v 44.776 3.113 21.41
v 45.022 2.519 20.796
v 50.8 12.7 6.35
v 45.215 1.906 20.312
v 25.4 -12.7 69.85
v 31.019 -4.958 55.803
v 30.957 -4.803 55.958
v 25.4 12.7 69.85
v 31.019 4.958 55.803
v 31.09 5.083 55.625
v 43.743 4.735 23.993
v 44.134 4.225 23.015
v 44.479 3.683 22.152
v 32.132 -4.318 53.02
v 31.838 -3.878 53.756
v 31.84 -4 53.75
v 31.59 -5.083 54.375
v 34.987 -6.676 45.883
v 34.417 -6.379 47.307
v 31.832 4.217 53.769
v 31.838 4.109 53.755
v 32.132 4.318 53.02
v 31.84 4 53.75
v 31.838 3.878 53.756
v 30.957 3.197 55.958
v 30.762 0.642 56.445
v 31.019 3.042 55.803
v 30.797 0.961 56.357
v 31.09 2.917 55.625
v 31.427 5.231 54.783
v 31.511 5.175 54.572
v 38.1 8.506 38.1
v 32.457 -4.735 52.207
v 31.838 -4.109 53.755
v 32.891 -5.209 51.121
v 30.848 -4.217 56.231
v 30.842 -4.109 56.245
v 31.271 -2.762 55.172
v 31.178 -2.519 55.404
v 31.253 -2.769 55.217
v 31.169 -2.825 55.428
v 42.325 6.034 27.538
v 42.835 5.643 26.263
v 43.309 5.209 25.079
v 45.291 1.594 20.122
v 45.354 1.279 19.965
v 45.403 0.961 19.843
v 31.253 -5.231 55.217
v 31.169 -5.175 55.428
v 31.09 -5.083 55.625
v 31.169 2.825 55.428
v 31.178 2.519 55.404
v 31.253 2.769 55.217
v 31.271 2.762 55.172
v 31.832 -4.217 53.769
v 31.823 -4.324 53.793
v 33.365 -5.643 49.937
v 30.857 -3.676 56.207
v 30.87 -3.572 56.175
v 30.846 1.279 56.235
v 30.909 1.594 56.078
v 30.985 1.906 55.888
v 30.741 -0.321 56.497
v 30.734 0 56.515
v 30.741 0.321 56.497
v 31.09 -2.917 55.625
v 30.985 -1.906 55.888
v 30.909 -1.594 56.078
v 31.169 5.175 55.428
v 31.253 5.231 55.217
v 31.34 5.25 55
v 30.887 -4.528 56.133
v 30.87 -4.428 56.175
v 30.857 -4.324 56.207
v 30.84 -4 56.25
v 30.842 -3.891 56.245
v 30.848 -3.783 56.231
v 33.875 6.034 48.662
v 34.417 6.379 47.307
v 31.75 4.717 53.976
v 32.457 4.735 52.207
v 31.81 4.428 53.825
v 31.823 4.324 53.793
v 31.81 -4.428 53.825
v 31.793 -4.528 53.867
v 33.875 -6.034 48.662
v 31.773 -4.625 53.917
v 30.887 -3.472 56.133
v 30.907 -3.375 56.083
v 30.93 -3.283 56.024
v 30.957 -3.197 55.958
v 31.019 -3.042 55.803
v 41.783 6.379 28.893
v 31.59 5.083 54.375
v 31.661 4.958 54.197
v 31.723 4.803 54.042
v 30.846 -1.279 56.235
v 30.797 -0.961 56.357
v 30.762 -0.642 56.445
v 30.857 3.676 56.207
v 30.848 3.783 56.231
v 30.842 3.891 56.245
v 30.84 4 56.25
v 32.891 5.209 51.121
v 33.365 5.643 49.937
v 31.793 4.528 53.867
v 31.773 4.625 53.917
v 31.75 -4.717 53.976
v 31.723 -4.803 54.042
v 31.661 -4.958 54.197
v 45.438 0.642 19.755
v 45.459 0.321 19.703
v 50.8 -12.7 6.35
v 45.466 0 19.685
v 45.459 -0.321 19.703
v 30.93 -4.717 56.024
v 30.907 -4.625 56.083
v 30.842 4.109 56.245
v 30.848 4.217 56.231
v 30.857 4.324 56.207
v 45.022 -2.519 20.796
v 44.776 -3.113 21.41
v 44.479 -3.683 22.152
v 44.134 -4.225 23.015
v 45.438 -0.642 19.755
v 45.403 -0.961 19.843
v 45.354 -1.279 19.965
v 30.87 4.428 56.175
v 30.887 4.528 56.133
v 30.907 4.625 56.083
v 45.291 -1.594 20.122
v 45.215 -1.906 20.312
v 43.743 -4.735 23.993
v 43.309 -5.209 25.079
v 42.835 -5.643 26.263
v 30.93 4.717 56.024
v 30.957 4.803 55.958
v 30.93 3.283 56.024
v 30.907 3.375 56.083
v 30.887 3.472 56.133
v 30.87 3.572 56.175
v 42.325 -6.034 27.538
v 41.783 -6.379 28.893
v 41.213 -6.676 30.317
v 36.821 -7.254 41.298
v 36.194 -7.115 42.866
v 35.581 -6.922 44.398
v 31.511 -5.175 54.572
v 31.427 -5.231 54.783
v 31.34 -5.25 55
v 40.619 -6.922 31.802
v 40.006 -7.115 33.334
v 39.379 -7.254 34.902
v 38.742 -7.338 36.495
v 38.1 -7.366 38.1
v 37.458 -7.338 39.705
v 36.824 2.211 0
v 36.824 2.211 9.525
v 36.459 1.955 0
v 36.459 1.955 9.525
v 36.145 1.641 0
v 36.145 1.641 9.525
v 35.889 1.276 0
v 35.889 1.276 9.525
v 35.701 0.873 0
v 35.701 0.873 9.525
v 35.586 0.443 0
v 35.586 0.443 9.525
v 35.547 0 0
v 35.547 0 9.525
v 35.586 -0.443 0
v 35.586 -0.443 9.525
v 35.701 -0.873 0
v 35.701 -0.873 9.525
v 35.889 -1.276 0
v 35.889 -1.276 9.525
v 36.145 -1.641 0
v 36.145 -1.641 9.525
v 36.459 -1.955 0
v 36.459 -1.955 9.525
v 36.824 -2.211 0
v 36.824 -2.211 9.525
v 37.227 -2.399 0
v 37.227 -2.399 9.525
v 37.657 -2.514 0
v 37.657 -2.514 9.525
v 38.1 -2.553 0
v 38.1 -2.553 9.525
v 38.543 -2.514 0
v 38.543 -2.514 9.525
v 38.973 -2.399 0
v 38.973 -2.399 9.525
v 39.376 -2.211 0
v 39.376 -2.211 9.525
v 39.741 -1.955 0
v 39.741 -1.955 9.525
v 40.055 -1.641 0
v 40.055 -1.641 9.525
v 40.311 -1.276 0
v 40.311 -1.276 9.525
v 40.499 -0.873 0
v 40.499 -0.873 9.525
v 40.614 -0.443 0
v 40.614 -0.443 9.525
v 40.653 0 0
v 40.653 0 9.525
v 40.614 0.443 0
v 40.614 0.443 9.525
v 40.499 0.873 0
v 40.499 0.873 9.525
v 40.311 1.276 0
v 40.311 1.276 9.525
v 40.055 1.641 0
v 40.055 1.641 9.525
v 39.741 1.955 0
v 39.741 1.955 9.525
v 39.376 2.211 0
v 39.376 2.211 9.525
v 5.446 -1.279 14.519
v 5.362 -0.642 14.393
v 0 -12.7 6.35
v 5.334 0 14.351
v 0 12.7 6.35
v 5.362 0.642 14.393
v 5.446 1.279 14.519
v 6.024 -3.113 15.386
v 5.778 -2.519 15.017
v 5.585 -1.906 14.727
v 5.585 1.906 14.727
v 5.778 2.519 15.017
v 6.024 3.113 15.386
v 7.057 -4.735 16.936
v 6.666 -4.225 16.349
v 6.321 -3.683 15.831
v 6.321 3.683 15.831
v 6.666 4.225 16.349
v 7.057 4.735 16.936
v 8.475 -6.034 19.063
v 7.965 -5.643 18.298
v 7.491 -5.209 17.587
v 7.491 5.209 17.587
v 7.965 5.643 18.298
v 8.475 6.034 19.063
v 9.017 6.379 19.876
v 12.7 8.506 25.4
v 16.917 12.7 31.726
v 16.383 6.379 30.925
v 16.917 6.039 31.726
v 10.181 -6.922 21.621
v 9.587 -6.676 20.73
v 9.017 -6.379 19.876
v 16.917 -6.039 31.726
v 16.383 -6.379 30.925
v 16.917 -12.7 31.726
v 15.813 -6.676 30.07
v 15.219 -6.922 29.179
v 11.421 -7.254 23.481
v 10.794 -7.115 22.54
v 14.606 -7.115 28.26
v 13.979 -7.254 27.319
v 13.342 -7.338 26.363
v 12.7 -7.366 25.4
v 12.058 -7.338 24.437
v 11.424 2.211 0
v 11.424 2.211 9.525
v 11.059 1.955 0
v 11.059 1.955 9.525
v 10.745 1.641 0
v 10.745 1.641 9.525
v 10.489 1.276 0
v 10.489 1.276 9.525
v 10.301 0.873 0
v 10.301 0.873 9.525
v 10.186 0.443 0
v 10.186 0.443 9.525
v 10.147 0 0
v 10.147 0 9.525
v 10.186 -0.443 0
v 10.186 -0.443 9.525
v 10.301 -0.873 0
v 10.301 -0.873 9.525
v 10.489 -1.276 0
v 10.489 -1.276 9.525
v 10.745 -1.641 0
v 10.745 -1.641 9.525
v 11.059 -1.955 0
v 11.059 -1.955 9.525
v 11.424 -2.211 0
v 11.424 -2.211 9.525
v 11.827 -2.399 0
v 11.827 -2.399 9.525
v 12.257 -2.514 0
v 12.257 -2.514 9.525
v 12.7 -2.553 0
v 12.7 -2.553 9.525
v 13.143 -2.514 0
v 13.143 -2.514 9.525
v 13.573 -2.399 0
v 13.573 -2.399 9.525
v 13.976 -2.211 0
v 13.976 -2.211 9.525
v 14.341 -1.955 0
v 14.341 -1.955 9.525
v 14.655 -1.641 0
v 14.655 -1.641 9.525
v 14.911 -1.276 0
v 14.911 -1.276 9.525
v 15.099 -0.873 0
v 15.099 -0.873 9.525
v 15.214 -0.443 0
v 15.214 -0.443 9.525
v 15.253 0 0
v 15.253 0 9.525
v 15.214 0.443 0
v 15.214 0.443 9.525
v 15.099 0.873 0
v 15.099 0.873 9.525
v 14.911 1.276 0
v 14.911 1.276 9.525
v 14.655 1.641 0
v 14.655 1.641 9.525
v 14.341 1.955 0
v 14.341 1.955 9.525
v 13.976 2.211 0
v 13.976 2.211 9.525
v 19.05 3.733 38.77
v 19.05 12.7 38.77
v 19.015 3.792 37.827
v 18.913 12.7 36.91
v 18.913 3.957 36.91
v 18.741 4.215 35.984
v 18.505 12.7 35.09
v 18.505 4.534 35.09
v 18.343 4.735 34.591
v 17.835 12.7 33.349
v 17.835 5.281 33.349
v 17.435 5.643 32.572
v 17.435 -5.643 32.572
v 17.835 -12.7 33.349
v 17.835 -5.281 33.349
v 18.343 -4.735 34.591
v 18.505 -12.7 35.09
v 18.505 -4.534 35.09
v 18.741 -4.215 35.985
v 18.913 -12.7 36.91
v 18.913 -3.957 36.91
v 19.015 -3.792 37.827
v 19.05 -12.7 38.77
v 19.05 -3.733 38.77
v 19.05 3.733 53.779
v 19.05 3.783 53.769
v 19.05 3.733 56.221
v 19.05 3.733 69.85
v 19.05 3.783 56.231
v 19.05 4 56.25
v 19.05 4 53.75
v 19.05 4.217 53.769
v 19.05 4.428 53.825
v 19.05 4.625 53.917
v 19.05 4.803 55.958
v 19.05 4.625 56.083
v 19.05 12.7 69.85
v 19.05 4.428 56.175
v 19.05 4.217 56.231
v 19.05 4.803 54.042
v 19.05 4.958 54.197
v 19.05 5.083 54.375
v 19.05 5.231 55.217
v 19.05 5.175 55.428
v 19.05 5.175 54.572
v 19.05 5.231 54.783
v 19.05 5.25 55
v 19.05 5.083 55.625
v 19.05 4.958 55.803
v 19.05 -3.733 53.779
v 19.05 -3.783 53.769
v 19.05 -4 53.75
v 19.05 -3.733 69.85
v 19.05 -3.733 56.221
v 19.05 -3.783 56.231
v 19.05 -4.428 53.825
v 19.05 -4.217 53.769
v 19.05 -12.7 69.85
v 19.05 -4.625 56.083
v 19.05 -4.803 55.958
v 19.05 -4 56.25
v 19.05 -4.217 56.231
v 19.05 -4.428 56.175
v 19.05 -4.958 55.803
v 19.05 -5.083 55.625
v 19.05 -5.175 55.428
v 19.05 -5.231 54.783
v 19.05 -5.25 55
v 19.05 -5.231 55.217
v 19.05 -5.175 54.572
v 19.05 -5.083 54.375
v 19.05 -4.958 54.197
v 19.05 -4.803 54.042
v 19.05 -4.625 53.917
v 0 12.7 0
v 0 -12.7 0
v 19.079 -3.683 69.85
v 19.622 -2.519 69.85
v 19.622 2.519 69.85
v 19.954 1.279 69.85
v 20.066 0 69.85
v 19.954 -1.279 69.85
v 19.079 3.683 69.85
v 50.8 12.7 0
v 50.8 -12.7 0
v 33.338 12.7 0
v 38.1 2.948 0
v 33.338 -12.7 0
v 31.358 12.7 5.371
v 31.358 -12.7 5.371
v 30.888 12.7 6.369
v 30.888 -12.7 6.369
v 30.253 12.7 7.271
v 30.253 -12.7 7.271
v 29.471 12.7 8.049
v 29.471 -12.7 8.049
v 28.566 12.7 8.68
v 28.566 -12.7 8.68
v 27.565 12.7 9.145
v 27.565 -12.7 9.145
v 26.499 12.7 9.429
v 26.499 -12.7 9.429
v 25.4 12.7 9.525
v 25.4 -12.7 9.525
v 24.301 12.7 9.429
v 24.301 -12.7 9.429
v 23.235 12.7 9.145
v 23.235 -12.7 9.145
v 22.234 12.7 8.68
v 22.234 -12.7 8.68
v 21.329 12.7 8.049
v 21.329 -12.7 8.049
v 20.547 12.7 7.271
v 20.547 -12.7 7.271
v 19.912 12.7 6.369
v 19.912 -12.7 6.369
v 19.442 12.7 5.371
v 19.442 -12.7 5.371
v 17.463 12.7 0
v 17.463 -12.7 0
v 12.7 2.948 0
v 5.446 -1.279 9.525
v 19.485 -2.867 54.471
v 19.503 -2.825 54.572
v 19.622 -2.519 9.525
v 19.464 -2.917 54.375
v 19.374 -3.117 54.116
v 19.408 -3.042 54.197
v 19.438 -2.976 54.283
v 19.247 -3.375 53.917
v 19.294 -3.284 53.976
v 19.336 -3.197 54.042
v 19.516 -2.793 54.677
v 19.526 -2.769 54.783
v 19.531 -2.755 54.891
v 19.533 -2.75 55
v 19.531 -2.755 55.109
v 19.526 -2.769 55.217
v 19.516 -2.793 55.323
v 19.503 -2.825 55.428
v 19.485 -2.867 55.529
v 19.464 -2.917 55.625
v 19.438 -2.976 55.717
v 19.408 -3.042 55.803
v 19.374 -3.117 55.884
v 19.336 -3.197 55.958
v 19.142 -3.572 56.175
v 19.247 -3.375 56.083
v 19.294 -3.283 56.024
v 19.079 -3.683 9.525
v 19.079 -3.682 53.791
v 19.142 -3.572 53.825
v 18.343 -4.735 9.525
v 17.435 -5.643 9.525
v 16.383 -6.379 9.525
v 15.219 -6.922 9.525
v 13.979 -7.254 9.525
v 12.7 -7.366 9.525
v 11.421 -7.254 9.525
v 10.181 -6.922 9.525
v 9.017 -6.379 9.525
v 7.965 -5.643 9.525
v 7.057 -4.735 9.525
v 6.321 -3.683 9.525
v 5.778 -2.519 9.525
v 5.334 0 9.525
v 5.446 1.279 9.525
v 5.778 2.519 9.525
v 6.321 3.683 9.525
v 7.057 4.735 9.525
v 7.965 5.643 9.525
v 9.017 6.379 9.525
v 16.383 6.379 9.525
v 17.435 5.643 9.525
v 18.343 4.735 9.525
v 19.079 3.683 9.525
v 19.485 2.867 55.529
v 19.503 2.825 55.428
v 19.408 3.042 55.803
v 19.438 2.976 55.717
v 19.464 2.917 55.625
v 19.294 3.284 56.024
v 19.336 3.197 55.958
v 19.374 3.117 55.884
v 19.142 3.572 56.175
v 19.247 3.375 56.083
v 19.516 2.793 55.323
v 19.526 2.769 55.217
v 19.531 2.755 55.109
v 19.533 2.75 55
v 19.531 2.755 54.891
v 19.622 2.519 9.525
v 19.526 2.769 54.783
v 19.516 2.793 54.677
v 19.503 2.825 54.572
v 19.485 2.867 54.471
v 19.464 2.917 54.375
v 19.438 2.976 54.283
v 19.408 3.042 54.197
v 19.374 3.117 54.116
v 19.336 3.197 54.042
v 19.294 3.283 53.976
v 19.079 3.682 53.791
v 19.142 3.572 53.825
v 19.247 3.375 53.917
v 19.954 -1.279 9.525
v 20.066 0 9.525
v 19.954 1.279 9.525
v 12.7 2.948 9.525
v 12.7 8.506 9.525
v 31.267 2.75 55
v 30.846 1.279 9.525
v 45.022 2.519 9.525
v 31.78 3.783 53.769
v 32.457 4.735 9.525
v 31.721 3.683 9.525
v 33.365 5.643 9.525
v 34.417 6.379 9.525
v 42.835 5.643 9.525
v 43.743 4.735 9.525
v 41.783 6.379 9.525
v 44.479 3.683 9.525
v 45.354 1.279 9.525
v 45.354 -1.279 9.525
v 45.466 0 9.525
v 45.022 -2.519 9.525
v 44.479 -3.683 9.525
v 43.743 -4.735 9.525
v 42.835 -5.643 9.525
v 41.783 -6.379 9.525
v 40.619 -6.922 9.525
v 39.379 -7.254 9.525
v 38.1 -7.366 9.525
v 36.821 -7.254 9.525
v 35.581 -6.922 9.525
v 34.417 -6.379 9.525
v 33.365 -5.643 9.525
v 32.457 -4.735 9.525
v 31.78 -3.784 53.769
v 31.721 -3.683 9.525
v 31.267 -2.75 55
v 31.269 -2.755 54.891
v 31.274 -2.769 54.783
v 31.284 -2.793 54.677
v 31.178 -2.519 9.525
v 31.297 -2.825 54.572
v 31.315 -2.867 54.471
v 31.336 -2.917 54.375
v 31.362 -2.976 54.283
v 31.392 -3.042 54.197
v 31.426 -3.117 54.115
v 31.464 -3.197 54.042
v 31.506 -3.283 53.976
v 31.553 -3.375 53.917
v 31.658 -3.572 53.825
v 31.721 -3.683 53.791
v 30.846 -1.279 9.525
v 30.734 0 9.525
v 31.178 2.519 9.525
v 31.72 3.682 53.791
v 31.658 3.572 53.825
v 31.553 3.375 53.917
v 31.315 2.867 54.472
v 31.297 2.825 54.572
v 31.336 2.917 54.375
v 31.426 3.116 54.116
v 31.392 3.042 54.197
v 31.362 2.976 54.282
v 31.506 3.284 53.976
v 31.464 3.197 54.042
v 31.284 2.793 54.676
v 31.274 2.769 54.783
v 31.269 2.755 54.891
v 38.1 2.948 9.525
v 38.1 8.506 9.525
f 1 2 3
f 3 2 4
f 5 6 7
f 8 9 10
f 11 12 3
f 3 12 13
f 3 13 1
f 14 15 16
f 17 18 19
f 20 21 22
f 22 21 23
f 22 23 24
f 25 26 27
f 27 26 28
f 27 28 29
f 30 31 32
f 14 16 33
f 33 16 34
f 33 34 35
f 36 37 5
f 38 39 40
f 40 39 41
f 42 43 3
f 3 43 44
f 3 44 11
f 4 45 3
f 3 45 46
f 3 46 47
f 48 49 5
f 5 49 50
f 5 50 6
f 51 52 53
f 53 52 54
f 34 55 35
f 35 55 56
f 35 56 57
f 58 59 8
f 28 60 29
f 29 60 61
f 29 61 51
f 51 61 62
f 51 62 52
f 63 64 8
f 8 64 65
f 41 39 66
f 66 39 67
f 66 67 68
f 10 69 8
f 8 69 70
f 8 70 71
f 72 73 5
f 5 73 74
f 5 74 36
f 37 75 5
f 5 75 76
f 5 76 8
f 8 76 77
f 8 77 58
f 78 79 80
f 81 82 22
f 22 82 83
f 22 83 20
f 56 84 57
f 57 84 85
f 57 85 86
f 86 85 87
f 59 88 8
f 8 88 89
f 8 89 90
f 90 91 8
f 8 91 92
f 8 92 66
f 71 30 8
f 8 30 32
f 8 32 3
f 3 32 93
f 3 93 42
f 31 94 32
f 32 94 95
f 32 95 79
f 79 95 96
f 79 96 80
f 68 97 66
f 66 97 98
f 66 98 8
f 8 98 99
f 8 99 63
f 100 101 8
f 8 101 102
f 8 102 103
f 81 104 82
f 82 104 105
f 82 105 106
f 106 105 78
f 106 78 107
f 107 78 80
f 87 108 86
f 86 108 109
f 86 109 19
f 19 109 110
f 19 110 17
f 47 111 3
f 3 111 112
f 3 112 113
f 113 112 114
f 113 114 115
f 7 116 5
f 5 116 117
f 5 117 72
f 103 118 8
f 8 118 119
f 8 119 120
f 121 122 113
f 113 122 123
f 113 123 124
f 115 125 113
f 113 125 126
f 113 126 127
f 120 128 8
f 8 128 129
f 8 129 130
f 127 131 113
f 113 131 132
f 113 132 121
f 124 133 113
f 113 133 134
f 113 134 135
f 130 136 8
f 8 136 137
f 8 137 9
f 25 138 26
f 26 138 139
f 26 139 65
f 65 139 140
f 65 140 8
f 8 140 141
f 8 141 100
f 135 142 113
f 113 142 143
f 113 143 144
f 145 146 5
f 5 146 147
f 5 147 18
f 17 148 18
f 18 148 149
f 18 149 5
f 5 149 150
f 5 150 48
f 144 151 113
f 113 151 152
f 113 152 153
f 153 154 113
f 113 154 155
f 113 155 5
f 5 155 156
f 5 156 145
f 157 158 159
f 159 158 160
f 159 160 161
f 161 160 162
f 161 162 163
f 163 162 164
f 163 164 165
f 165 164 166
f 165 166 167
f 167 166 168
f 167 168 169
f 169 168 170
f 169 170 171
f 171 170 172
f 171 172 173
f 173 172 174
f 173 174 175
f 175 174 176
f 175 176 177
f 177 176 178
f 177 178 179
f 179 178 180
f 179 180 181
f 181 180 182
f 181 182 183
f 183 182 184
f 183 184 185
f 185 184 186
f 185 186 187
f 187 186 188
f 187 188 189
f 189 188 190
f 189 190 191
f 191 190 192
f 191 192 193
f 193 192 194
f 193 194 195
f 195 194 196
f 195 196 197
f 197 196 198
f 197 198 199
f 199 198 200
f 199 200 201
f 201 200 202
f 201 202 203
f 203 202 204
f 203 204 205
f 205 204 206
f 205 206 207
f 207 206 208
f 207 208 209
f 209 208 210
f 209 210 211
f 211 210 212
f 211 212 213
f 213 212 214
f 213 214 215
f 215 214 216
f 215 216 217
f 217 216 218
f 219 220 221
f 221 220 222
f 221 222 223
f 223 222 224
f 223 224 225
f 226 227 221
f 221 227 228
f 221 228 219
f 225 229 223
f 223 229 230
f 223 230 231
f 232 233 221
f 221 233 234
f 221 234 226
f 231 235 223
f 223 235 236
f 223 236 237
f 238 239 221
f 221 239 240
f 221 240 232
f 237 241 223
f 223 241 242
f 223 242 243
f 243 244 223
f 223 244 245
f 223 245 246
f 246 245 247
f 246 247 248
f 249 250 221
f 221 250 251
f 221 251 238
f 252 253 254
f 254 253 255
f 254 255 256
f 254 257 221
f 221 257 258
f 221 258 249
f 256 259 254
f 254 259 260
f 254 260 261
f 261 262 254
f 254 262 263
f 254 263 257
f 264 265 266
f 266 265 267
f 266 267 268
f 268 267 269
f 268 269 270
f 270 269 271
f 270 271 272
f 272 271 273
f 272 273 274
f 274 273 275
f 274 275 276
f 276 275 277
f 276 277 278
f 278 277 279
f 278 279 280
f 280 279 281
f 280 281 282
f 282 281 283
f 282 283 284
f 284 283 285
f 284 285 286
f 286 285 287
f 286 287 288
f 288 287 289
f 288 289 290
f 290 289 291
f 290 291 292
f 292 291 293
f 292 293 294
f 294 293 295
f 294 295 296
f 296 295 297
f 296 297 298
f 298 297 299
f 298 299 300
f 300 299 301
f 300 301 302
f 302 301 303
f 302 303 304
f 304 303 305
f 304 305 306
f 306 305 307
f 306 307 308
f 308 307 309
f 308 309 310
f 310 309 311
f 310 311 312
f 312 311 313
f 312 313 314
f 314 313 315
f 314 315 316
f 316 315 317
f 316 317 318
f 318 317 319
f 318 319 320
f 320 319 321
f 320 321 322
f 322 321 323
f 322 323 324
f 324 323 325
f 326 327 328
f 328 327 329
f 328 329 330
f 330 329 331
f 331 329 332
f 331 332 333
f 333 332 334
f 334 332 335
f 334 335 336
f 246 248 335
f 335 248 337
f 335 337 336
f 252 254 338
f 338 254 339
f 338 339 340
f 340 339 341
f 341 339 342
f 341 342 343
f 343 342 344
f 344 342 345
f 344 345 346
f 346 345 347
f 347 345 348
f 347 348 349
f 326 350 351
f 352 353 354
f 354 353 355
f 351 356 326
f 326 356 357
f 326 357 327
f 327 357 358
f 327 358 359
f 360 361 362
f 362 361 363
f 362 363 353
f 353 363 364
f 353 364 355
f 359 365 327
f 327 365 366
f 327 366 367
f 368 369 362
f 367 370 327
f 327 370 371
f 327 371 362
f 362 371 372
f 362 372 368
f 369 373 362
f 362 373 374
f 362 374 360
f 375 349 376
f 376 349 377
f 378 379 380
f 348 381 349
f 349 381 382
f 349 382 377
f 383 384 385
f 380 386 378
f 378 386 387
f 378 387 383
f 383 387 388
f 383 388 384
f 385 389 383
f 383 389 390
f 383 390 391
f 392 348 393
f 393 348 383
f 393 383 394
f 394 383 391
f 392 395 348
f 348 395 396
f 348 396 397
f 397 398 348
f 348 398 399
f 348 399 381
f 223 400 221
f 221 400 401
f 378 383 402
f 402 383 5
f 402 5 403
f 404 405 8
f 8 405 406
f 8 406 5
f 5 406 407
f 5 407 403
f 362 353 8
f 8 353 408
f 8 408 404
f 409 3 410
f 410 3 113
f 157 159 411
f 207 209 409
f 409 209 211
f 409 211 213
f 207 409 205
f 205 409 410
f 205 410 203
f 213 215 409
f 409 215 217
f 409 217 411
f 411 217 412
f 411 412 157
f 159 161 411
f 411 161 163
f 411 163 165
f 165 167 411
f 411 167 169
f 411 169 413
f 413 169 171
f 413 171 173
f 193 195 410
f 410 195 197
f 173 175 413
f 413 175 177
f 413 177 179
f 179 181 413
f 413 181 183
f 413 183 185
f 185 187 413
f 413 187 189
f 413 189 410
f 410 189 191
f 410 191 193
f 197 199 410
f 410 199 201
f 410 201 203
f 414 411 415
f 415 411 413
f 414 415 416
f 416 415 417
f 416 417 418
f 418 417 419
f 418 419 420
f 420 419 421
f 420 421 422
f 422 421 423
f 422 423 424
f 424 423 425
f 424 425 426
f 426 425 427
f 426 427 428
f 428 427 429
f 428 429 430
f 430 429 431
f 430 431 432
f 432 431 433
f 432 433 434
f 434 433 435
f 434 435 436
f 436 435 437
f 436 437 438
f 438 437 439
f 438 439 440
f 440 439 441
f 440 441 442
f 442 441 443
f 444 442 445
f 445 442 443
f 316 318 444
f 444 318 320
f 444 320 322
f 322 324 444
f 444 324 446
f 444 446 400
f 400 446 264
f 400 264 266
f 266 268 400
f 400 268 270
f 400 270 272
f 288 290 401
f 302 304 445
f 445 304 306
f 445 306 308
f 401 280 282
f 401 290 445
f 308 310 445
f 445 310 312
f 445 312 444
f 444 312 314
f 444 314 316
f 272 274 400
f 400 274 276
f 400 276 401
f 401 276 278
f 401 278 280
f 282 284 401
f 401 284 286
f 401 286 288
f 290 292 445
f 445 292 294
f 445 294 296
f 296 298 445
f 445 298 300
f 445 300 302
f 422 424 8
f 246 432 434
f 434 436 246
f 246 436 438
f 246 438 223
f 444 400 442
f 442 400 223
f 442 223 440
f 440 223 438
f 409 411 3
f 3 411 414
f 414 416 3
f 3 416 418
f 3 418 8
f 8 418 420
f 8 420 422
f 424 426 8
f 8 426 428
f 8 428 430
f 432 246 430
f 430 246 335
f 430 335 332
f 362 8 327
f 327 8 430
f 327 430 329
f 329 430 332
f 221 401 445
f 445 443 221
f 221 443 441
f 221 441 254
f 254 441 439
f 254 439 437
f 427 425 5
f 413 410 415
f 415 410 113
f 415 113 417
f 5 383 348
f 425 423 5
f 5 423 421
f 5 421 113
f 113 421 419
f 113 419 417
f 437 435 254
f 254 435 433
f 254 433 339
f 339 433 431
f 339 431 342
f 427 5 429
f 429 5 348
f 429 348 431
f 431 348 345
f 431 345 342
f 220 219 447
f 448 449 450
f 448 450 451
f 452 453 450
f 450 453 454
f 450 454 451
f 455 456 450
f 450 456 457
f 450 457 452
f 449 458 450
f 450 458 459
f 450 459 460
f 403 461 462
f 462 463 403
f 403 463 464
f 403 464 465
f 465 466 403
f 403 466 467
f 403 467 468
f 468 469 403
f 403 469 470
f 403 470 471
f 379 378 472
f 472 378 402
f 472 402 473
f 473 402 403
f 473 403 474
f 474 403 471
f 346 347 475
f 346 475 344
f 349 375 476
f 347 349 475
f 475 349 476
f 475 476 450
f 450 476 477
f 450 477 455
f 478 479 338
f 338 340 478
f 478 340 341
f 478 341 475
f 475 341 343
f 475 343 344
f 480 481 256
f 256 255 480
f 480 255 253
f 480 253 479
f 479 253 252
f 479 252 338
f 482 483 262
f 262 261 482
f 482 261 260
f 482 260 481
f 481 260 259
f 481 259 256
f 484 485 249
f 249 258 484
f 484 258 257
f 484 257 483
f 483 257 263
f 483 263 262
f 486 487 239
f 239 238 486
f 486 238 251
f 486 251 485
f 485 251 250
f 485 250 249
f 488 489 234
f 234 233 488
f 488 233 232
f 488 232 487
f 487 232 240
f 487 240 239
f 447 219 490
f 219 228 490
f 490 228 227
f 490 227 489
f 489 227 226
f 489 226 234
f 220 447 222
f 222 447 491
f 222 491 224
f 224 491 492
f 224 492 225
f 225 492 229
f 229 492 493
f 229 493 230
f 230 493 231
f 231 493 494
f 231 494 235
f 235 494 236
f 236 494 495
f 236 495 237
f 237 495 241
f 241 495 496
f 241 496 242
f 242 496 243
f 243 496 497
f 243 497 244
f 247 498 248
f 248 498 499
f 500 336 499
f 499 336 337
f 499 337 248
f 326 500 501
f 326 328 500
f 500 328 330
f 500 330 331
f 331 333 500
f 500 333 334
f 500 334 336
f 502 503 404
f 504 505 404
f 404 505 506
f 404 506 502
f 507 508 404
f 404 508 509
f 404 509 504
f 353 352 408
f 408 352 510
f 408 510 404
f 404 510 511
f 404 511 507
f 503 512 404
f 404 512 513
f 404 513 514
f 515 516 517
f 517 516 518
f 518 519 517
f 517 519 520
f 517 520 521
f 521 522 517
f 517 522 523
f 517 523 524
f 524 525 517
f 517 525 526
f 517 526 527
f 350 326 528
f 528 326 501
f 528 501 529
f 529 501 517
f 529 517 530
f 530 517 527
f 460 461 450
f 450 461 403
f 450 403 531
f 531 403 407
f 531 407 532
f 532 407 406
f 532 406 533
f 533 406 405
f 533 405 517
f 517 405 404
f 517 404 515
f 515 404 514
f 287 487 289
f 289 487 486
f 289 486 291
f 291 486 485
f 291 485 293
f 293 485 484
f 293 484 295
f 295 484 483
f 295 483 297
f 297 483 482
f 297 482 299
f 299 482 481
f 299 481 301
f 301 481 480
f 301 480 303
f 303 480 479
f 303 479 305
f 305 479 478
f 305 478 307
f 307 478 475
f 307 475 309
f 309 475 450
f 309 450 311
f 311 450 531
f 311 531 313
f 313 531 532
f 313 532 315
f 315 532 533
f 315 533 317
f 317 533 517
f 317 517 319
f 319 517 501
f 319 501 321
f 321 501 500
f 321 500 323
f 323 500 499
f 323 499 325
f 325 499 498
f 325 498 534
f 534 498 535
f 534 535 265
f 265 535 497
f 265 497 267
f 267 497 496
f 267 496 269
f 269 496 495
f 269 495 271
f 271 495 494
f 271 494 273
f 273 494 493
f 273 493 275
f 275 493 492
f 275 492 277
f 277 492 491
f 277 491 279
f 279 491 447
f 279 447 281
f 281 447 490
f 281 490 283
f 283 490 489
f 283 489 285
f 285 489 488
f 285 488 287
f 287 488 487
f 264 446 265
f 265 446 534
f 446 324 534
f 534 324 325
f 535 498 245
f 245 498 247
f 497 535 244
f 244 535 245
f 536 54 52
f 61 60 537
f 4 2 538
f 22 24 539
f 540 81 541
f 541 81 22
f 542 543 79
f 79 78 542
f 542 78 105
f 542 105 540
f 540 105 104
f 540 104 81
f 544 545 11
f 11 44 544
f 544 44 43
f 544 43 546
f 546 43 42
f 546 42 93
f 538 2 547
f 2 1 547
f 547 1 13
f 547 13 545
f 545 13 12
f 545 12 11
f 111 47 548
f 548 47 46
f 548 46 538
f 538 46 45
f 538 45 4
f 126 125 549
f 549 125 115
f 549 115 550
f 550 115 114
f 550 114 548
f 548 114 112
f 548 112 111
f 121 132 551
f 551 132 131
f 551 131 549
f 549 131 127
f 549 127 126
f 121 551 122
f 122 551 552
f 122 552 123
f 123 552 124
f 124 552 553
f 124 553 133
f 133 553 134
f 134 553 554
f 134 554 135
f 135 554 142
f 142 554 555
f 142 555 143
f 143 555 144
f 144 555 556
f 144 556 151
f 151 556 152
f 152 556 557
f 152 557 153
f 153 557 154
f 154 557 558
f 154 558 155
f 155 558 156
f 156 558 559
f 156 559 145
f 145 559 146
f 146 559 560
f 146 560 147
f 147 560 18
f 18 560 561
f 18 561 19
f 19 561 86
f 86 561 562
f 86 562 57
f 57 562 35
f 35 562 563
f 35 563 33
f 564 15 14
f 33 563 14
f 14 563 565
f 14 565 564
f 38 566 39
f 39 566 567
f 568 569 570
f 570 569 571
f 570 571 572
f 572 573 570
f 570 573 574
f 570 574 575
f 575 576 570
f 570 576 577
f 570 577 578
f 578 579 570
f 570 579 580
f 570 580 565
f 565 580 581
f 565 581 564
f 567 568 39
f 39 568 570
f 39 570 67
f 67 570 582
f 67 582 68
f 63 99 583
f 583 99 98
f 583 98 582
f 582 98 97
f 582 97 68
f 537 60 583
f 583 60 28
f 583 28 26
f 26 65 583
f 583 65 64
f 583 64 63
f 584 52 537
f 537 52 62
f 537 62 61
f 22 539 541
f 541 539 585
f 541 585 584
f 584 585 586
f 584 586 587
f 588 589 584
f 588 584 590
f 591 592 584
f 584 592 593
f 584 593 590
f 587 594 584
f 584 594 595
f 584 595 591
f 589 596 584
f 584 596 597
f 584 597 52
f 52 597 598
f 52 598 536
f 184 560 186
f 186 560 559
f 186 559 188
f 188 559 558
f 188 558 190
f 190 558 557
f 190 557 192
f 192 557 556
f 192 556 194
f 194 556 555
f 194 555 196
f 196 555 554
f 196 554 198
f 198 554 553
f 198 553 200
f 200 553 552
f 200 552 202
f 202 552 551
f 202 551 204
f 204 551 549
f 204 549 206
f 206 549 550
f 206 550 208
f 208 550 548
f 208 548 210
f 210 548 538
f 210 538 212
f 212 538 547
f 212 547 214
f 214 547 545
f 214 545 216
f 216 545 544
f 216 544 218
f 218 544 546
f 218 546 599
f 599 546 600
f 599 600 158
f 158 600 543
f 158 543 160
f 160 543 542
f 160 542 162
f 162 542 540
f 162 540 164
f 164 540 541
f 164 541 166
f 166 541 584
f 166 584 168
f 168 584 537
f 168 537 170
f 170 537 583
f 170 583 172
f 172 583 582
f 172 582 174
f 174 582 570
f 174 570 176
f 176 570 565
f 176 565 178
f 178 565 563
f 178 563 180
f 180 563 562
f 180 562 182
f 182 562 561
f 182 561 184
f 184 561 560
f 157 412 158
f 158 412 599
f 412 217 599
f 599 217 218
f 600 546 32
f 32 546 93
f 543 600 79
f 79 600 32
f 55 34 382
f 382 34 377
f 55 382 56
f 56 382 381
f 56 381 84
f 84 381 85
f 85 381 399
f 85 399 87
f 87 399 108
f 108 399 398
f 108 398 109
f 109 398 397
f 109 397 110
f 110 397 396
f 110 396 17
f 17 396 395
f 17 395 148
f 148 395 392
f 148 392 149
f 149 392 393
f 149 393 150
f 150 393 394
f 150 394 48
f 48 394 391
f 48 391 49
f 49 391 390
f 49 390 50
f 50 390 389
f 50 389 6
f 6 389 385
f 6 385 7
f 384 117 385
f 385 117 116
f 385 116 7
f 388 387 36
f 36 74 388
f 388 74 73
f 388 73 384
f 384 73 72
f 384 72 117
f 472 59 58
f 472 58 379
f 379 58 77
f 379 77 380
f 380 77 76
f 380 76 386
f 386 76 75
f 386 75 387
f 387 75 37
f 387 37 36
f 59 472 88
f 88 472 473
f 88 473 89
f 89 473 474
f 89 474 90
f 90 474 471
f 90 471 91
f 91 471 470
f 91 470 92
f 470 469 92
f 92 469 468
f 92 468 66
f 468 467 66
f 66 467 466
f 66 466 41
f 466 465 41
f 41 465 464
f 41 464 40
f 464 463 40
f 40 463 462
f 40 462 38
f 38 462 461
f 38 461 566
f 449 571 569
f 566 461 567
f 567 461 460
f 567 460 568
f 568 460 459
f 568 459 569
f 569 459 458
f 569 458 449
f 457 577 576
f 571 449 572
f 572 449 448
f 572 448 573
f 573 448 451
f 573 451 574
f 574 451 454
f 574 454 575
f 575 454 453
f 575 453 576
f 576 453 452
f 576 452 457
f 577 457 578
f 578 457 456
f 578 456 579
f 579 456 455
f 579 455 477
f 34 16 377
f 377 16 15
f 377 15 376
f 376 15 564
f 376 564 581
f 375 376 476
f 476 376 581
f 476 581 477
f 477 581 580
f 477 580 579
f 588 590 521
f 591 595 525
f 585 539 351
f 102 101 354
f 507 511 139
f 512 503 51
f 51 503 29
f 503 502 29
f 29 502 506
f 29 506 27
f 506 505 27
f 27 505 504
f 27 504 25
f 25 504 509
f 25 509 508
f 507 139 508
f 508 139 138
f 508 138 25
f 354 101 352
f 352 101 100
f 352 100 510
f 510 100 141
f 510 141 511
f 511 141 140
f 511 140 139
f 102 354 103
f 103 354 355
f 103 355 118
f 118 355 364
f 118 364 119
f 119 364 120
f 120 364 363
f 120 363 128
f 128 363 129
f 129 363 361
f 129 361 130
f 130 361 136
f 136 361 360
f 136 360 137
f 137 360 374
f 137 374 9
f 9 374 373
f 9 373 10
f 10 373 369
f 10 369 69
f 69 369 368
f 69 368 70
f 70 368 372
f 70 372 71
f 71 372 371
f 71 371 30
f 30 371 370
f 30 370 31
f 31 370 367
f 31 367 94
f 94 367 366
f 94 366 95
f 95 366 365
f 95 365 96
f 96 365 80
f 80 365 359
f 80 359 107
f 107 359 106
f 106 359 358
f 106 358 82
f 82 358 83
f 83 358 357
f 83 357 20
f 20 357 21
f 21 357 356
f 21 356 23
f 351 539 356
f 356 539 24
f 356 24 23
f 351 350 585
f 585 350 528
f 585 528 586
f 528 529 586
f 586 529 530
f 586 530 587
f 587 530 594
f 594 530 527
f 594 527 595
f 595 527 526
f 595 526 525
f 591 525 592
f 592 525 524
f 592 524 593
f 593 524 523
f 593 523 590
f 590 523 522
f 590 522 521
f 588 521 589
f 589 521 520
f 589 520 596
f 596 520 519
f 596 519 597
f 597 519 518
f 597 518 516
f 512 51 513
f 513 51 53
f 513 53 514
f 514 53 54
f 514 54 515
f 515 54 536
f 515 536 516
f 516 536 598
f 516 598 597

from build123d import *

# Parameters (mm, degrees)
BOSS_EXTRUDE1_DEPTH   = 12.7
CUT_EXTRUDE1_DEPTH    = 10.525
CUT_EXTRUDE2_DEPTH    = 61.3250001
LPATTERN1_COUNT       = 2
LPATTERN1_PITCH       = 25.4
M3X0_5_TAPPED_HOLE1_D = 2.5


with BuildPart() as part:
    # Sketch1 → Boss-Extrude1 (new body, symmetric)
    with BuildSketch(Plane(origin=(0, 0, 0), x_dir=(1, 0, 0), z_dir=(0, 1, 0))):
        with BuildLine():
            Line((0, 0), (17.4625, 0))
            Line((17.4625, 0), (19.441706855, -5.370732862))
            ThreePointArc((19.441706855, -5.370732862), (25.4, -9.525), (31.358293145, -5.370732862))
            Line((31.358293145, -5.370732862), (33.3375, 0))
            Line((33.3375, 0), (50.8, 0))
            Line((50.8, 0), (50.8, -6.35))
            Line((50.8, -6.35), (25.4, -69.85))
            Line((25.4, -69.85), (19.05, -69.85))
            Line((19.05, -69.85), (19.05, -38.770250599))
            ThreePointArc((19.05, -38.770250599), (18.505068736, -35.089991911), (16.917038738, -31.725558107))
            Line((16.917038738, -31.725558107), (0, -6.35))
            Line((0, -6.35), (0, 0))
        make_face()
    extrude(amount=BOSS_EXTRUDE1_DEPTH, both=True)

    # Sketch2 → Cut-Revolve1 (revolve, cut)
    with BuildSketch(Plane(origin=(0, 0, 0), x_dir=(1, 0, 0), z_dir=(0, 1, 0))):
        Polygon((12.7, 0), (12.7, -120.015), (5.334, -120.015), (5.334, -9.525), (10.1473, -9.525), (10.1473, 0), align=None)
    cut_revolve1 = revolve(axis=Axis((12.7, 0, 0), (0, 0, -1)), mode=Mode.SUBTRACT)

    # Sketch6 → Cut-Extrude1 (cut, through all)
    with BuildSketch(Plane.XY.offset(9.525)):
        with BuildLine():
            Line((11.42365, 2.210703048), (12.7, 2.947604064))
            Line((12.7, 2.947604064), (13.97635, 2.210703048))
            ThreePointArc((13.97635, 2.210703048), (12.7, 2.5527), (11.42365, 2.210703048))
        make_face()
    cut_extrude1 = extrude(amount=-CUT_EXTRUDE1_DEPTH, mode=Mode.SUBTRACT)

    # Sketch7 → Cut-Extrude2 (cut, through all)
    with BuildSketch(Plane.XY.offset(9.525)):
        with BuildLine():
            Line((9.017, 6.379143124), (12.7, 8.505524166))
            Line((12.7, 8.505524166), (16.383, 6.379143124))
            ThreePointArc((16.383, 6.379143124), (12.7, 7.366), (9.017, 6.379143124))
        make_face()
    cut_extrude2 = extrude(amount=CUT_EXTRUDE2_DEPTH, mode=Mode.SUBTRACT)

    # LPattern1: Cut-Revolve1, Cut-Extrude1, Cut-Extrude2 ×2
    with Locations(*[(i * LPATTERN1_PITCH, 0, 0) for i in range(1, LPATTERN1_COUNT)]):
        add(cut_revolve1, mode=Mode.SUBTRACT)
        add(cut_extrude1, mode=Mode.SUBTRACT)
        add(cut_extrude2, mode=Mode.SUBTRACT)

    # M3x0.5 Tapped Hole1 (through all)
    with Locations(Plane.ZY.offset(-19.05)):
        with Locations((55, 4), (55, -4)):
            Hole(M3X0_5_TAPPED_HOLE1_D / 2)


solid = part.part
